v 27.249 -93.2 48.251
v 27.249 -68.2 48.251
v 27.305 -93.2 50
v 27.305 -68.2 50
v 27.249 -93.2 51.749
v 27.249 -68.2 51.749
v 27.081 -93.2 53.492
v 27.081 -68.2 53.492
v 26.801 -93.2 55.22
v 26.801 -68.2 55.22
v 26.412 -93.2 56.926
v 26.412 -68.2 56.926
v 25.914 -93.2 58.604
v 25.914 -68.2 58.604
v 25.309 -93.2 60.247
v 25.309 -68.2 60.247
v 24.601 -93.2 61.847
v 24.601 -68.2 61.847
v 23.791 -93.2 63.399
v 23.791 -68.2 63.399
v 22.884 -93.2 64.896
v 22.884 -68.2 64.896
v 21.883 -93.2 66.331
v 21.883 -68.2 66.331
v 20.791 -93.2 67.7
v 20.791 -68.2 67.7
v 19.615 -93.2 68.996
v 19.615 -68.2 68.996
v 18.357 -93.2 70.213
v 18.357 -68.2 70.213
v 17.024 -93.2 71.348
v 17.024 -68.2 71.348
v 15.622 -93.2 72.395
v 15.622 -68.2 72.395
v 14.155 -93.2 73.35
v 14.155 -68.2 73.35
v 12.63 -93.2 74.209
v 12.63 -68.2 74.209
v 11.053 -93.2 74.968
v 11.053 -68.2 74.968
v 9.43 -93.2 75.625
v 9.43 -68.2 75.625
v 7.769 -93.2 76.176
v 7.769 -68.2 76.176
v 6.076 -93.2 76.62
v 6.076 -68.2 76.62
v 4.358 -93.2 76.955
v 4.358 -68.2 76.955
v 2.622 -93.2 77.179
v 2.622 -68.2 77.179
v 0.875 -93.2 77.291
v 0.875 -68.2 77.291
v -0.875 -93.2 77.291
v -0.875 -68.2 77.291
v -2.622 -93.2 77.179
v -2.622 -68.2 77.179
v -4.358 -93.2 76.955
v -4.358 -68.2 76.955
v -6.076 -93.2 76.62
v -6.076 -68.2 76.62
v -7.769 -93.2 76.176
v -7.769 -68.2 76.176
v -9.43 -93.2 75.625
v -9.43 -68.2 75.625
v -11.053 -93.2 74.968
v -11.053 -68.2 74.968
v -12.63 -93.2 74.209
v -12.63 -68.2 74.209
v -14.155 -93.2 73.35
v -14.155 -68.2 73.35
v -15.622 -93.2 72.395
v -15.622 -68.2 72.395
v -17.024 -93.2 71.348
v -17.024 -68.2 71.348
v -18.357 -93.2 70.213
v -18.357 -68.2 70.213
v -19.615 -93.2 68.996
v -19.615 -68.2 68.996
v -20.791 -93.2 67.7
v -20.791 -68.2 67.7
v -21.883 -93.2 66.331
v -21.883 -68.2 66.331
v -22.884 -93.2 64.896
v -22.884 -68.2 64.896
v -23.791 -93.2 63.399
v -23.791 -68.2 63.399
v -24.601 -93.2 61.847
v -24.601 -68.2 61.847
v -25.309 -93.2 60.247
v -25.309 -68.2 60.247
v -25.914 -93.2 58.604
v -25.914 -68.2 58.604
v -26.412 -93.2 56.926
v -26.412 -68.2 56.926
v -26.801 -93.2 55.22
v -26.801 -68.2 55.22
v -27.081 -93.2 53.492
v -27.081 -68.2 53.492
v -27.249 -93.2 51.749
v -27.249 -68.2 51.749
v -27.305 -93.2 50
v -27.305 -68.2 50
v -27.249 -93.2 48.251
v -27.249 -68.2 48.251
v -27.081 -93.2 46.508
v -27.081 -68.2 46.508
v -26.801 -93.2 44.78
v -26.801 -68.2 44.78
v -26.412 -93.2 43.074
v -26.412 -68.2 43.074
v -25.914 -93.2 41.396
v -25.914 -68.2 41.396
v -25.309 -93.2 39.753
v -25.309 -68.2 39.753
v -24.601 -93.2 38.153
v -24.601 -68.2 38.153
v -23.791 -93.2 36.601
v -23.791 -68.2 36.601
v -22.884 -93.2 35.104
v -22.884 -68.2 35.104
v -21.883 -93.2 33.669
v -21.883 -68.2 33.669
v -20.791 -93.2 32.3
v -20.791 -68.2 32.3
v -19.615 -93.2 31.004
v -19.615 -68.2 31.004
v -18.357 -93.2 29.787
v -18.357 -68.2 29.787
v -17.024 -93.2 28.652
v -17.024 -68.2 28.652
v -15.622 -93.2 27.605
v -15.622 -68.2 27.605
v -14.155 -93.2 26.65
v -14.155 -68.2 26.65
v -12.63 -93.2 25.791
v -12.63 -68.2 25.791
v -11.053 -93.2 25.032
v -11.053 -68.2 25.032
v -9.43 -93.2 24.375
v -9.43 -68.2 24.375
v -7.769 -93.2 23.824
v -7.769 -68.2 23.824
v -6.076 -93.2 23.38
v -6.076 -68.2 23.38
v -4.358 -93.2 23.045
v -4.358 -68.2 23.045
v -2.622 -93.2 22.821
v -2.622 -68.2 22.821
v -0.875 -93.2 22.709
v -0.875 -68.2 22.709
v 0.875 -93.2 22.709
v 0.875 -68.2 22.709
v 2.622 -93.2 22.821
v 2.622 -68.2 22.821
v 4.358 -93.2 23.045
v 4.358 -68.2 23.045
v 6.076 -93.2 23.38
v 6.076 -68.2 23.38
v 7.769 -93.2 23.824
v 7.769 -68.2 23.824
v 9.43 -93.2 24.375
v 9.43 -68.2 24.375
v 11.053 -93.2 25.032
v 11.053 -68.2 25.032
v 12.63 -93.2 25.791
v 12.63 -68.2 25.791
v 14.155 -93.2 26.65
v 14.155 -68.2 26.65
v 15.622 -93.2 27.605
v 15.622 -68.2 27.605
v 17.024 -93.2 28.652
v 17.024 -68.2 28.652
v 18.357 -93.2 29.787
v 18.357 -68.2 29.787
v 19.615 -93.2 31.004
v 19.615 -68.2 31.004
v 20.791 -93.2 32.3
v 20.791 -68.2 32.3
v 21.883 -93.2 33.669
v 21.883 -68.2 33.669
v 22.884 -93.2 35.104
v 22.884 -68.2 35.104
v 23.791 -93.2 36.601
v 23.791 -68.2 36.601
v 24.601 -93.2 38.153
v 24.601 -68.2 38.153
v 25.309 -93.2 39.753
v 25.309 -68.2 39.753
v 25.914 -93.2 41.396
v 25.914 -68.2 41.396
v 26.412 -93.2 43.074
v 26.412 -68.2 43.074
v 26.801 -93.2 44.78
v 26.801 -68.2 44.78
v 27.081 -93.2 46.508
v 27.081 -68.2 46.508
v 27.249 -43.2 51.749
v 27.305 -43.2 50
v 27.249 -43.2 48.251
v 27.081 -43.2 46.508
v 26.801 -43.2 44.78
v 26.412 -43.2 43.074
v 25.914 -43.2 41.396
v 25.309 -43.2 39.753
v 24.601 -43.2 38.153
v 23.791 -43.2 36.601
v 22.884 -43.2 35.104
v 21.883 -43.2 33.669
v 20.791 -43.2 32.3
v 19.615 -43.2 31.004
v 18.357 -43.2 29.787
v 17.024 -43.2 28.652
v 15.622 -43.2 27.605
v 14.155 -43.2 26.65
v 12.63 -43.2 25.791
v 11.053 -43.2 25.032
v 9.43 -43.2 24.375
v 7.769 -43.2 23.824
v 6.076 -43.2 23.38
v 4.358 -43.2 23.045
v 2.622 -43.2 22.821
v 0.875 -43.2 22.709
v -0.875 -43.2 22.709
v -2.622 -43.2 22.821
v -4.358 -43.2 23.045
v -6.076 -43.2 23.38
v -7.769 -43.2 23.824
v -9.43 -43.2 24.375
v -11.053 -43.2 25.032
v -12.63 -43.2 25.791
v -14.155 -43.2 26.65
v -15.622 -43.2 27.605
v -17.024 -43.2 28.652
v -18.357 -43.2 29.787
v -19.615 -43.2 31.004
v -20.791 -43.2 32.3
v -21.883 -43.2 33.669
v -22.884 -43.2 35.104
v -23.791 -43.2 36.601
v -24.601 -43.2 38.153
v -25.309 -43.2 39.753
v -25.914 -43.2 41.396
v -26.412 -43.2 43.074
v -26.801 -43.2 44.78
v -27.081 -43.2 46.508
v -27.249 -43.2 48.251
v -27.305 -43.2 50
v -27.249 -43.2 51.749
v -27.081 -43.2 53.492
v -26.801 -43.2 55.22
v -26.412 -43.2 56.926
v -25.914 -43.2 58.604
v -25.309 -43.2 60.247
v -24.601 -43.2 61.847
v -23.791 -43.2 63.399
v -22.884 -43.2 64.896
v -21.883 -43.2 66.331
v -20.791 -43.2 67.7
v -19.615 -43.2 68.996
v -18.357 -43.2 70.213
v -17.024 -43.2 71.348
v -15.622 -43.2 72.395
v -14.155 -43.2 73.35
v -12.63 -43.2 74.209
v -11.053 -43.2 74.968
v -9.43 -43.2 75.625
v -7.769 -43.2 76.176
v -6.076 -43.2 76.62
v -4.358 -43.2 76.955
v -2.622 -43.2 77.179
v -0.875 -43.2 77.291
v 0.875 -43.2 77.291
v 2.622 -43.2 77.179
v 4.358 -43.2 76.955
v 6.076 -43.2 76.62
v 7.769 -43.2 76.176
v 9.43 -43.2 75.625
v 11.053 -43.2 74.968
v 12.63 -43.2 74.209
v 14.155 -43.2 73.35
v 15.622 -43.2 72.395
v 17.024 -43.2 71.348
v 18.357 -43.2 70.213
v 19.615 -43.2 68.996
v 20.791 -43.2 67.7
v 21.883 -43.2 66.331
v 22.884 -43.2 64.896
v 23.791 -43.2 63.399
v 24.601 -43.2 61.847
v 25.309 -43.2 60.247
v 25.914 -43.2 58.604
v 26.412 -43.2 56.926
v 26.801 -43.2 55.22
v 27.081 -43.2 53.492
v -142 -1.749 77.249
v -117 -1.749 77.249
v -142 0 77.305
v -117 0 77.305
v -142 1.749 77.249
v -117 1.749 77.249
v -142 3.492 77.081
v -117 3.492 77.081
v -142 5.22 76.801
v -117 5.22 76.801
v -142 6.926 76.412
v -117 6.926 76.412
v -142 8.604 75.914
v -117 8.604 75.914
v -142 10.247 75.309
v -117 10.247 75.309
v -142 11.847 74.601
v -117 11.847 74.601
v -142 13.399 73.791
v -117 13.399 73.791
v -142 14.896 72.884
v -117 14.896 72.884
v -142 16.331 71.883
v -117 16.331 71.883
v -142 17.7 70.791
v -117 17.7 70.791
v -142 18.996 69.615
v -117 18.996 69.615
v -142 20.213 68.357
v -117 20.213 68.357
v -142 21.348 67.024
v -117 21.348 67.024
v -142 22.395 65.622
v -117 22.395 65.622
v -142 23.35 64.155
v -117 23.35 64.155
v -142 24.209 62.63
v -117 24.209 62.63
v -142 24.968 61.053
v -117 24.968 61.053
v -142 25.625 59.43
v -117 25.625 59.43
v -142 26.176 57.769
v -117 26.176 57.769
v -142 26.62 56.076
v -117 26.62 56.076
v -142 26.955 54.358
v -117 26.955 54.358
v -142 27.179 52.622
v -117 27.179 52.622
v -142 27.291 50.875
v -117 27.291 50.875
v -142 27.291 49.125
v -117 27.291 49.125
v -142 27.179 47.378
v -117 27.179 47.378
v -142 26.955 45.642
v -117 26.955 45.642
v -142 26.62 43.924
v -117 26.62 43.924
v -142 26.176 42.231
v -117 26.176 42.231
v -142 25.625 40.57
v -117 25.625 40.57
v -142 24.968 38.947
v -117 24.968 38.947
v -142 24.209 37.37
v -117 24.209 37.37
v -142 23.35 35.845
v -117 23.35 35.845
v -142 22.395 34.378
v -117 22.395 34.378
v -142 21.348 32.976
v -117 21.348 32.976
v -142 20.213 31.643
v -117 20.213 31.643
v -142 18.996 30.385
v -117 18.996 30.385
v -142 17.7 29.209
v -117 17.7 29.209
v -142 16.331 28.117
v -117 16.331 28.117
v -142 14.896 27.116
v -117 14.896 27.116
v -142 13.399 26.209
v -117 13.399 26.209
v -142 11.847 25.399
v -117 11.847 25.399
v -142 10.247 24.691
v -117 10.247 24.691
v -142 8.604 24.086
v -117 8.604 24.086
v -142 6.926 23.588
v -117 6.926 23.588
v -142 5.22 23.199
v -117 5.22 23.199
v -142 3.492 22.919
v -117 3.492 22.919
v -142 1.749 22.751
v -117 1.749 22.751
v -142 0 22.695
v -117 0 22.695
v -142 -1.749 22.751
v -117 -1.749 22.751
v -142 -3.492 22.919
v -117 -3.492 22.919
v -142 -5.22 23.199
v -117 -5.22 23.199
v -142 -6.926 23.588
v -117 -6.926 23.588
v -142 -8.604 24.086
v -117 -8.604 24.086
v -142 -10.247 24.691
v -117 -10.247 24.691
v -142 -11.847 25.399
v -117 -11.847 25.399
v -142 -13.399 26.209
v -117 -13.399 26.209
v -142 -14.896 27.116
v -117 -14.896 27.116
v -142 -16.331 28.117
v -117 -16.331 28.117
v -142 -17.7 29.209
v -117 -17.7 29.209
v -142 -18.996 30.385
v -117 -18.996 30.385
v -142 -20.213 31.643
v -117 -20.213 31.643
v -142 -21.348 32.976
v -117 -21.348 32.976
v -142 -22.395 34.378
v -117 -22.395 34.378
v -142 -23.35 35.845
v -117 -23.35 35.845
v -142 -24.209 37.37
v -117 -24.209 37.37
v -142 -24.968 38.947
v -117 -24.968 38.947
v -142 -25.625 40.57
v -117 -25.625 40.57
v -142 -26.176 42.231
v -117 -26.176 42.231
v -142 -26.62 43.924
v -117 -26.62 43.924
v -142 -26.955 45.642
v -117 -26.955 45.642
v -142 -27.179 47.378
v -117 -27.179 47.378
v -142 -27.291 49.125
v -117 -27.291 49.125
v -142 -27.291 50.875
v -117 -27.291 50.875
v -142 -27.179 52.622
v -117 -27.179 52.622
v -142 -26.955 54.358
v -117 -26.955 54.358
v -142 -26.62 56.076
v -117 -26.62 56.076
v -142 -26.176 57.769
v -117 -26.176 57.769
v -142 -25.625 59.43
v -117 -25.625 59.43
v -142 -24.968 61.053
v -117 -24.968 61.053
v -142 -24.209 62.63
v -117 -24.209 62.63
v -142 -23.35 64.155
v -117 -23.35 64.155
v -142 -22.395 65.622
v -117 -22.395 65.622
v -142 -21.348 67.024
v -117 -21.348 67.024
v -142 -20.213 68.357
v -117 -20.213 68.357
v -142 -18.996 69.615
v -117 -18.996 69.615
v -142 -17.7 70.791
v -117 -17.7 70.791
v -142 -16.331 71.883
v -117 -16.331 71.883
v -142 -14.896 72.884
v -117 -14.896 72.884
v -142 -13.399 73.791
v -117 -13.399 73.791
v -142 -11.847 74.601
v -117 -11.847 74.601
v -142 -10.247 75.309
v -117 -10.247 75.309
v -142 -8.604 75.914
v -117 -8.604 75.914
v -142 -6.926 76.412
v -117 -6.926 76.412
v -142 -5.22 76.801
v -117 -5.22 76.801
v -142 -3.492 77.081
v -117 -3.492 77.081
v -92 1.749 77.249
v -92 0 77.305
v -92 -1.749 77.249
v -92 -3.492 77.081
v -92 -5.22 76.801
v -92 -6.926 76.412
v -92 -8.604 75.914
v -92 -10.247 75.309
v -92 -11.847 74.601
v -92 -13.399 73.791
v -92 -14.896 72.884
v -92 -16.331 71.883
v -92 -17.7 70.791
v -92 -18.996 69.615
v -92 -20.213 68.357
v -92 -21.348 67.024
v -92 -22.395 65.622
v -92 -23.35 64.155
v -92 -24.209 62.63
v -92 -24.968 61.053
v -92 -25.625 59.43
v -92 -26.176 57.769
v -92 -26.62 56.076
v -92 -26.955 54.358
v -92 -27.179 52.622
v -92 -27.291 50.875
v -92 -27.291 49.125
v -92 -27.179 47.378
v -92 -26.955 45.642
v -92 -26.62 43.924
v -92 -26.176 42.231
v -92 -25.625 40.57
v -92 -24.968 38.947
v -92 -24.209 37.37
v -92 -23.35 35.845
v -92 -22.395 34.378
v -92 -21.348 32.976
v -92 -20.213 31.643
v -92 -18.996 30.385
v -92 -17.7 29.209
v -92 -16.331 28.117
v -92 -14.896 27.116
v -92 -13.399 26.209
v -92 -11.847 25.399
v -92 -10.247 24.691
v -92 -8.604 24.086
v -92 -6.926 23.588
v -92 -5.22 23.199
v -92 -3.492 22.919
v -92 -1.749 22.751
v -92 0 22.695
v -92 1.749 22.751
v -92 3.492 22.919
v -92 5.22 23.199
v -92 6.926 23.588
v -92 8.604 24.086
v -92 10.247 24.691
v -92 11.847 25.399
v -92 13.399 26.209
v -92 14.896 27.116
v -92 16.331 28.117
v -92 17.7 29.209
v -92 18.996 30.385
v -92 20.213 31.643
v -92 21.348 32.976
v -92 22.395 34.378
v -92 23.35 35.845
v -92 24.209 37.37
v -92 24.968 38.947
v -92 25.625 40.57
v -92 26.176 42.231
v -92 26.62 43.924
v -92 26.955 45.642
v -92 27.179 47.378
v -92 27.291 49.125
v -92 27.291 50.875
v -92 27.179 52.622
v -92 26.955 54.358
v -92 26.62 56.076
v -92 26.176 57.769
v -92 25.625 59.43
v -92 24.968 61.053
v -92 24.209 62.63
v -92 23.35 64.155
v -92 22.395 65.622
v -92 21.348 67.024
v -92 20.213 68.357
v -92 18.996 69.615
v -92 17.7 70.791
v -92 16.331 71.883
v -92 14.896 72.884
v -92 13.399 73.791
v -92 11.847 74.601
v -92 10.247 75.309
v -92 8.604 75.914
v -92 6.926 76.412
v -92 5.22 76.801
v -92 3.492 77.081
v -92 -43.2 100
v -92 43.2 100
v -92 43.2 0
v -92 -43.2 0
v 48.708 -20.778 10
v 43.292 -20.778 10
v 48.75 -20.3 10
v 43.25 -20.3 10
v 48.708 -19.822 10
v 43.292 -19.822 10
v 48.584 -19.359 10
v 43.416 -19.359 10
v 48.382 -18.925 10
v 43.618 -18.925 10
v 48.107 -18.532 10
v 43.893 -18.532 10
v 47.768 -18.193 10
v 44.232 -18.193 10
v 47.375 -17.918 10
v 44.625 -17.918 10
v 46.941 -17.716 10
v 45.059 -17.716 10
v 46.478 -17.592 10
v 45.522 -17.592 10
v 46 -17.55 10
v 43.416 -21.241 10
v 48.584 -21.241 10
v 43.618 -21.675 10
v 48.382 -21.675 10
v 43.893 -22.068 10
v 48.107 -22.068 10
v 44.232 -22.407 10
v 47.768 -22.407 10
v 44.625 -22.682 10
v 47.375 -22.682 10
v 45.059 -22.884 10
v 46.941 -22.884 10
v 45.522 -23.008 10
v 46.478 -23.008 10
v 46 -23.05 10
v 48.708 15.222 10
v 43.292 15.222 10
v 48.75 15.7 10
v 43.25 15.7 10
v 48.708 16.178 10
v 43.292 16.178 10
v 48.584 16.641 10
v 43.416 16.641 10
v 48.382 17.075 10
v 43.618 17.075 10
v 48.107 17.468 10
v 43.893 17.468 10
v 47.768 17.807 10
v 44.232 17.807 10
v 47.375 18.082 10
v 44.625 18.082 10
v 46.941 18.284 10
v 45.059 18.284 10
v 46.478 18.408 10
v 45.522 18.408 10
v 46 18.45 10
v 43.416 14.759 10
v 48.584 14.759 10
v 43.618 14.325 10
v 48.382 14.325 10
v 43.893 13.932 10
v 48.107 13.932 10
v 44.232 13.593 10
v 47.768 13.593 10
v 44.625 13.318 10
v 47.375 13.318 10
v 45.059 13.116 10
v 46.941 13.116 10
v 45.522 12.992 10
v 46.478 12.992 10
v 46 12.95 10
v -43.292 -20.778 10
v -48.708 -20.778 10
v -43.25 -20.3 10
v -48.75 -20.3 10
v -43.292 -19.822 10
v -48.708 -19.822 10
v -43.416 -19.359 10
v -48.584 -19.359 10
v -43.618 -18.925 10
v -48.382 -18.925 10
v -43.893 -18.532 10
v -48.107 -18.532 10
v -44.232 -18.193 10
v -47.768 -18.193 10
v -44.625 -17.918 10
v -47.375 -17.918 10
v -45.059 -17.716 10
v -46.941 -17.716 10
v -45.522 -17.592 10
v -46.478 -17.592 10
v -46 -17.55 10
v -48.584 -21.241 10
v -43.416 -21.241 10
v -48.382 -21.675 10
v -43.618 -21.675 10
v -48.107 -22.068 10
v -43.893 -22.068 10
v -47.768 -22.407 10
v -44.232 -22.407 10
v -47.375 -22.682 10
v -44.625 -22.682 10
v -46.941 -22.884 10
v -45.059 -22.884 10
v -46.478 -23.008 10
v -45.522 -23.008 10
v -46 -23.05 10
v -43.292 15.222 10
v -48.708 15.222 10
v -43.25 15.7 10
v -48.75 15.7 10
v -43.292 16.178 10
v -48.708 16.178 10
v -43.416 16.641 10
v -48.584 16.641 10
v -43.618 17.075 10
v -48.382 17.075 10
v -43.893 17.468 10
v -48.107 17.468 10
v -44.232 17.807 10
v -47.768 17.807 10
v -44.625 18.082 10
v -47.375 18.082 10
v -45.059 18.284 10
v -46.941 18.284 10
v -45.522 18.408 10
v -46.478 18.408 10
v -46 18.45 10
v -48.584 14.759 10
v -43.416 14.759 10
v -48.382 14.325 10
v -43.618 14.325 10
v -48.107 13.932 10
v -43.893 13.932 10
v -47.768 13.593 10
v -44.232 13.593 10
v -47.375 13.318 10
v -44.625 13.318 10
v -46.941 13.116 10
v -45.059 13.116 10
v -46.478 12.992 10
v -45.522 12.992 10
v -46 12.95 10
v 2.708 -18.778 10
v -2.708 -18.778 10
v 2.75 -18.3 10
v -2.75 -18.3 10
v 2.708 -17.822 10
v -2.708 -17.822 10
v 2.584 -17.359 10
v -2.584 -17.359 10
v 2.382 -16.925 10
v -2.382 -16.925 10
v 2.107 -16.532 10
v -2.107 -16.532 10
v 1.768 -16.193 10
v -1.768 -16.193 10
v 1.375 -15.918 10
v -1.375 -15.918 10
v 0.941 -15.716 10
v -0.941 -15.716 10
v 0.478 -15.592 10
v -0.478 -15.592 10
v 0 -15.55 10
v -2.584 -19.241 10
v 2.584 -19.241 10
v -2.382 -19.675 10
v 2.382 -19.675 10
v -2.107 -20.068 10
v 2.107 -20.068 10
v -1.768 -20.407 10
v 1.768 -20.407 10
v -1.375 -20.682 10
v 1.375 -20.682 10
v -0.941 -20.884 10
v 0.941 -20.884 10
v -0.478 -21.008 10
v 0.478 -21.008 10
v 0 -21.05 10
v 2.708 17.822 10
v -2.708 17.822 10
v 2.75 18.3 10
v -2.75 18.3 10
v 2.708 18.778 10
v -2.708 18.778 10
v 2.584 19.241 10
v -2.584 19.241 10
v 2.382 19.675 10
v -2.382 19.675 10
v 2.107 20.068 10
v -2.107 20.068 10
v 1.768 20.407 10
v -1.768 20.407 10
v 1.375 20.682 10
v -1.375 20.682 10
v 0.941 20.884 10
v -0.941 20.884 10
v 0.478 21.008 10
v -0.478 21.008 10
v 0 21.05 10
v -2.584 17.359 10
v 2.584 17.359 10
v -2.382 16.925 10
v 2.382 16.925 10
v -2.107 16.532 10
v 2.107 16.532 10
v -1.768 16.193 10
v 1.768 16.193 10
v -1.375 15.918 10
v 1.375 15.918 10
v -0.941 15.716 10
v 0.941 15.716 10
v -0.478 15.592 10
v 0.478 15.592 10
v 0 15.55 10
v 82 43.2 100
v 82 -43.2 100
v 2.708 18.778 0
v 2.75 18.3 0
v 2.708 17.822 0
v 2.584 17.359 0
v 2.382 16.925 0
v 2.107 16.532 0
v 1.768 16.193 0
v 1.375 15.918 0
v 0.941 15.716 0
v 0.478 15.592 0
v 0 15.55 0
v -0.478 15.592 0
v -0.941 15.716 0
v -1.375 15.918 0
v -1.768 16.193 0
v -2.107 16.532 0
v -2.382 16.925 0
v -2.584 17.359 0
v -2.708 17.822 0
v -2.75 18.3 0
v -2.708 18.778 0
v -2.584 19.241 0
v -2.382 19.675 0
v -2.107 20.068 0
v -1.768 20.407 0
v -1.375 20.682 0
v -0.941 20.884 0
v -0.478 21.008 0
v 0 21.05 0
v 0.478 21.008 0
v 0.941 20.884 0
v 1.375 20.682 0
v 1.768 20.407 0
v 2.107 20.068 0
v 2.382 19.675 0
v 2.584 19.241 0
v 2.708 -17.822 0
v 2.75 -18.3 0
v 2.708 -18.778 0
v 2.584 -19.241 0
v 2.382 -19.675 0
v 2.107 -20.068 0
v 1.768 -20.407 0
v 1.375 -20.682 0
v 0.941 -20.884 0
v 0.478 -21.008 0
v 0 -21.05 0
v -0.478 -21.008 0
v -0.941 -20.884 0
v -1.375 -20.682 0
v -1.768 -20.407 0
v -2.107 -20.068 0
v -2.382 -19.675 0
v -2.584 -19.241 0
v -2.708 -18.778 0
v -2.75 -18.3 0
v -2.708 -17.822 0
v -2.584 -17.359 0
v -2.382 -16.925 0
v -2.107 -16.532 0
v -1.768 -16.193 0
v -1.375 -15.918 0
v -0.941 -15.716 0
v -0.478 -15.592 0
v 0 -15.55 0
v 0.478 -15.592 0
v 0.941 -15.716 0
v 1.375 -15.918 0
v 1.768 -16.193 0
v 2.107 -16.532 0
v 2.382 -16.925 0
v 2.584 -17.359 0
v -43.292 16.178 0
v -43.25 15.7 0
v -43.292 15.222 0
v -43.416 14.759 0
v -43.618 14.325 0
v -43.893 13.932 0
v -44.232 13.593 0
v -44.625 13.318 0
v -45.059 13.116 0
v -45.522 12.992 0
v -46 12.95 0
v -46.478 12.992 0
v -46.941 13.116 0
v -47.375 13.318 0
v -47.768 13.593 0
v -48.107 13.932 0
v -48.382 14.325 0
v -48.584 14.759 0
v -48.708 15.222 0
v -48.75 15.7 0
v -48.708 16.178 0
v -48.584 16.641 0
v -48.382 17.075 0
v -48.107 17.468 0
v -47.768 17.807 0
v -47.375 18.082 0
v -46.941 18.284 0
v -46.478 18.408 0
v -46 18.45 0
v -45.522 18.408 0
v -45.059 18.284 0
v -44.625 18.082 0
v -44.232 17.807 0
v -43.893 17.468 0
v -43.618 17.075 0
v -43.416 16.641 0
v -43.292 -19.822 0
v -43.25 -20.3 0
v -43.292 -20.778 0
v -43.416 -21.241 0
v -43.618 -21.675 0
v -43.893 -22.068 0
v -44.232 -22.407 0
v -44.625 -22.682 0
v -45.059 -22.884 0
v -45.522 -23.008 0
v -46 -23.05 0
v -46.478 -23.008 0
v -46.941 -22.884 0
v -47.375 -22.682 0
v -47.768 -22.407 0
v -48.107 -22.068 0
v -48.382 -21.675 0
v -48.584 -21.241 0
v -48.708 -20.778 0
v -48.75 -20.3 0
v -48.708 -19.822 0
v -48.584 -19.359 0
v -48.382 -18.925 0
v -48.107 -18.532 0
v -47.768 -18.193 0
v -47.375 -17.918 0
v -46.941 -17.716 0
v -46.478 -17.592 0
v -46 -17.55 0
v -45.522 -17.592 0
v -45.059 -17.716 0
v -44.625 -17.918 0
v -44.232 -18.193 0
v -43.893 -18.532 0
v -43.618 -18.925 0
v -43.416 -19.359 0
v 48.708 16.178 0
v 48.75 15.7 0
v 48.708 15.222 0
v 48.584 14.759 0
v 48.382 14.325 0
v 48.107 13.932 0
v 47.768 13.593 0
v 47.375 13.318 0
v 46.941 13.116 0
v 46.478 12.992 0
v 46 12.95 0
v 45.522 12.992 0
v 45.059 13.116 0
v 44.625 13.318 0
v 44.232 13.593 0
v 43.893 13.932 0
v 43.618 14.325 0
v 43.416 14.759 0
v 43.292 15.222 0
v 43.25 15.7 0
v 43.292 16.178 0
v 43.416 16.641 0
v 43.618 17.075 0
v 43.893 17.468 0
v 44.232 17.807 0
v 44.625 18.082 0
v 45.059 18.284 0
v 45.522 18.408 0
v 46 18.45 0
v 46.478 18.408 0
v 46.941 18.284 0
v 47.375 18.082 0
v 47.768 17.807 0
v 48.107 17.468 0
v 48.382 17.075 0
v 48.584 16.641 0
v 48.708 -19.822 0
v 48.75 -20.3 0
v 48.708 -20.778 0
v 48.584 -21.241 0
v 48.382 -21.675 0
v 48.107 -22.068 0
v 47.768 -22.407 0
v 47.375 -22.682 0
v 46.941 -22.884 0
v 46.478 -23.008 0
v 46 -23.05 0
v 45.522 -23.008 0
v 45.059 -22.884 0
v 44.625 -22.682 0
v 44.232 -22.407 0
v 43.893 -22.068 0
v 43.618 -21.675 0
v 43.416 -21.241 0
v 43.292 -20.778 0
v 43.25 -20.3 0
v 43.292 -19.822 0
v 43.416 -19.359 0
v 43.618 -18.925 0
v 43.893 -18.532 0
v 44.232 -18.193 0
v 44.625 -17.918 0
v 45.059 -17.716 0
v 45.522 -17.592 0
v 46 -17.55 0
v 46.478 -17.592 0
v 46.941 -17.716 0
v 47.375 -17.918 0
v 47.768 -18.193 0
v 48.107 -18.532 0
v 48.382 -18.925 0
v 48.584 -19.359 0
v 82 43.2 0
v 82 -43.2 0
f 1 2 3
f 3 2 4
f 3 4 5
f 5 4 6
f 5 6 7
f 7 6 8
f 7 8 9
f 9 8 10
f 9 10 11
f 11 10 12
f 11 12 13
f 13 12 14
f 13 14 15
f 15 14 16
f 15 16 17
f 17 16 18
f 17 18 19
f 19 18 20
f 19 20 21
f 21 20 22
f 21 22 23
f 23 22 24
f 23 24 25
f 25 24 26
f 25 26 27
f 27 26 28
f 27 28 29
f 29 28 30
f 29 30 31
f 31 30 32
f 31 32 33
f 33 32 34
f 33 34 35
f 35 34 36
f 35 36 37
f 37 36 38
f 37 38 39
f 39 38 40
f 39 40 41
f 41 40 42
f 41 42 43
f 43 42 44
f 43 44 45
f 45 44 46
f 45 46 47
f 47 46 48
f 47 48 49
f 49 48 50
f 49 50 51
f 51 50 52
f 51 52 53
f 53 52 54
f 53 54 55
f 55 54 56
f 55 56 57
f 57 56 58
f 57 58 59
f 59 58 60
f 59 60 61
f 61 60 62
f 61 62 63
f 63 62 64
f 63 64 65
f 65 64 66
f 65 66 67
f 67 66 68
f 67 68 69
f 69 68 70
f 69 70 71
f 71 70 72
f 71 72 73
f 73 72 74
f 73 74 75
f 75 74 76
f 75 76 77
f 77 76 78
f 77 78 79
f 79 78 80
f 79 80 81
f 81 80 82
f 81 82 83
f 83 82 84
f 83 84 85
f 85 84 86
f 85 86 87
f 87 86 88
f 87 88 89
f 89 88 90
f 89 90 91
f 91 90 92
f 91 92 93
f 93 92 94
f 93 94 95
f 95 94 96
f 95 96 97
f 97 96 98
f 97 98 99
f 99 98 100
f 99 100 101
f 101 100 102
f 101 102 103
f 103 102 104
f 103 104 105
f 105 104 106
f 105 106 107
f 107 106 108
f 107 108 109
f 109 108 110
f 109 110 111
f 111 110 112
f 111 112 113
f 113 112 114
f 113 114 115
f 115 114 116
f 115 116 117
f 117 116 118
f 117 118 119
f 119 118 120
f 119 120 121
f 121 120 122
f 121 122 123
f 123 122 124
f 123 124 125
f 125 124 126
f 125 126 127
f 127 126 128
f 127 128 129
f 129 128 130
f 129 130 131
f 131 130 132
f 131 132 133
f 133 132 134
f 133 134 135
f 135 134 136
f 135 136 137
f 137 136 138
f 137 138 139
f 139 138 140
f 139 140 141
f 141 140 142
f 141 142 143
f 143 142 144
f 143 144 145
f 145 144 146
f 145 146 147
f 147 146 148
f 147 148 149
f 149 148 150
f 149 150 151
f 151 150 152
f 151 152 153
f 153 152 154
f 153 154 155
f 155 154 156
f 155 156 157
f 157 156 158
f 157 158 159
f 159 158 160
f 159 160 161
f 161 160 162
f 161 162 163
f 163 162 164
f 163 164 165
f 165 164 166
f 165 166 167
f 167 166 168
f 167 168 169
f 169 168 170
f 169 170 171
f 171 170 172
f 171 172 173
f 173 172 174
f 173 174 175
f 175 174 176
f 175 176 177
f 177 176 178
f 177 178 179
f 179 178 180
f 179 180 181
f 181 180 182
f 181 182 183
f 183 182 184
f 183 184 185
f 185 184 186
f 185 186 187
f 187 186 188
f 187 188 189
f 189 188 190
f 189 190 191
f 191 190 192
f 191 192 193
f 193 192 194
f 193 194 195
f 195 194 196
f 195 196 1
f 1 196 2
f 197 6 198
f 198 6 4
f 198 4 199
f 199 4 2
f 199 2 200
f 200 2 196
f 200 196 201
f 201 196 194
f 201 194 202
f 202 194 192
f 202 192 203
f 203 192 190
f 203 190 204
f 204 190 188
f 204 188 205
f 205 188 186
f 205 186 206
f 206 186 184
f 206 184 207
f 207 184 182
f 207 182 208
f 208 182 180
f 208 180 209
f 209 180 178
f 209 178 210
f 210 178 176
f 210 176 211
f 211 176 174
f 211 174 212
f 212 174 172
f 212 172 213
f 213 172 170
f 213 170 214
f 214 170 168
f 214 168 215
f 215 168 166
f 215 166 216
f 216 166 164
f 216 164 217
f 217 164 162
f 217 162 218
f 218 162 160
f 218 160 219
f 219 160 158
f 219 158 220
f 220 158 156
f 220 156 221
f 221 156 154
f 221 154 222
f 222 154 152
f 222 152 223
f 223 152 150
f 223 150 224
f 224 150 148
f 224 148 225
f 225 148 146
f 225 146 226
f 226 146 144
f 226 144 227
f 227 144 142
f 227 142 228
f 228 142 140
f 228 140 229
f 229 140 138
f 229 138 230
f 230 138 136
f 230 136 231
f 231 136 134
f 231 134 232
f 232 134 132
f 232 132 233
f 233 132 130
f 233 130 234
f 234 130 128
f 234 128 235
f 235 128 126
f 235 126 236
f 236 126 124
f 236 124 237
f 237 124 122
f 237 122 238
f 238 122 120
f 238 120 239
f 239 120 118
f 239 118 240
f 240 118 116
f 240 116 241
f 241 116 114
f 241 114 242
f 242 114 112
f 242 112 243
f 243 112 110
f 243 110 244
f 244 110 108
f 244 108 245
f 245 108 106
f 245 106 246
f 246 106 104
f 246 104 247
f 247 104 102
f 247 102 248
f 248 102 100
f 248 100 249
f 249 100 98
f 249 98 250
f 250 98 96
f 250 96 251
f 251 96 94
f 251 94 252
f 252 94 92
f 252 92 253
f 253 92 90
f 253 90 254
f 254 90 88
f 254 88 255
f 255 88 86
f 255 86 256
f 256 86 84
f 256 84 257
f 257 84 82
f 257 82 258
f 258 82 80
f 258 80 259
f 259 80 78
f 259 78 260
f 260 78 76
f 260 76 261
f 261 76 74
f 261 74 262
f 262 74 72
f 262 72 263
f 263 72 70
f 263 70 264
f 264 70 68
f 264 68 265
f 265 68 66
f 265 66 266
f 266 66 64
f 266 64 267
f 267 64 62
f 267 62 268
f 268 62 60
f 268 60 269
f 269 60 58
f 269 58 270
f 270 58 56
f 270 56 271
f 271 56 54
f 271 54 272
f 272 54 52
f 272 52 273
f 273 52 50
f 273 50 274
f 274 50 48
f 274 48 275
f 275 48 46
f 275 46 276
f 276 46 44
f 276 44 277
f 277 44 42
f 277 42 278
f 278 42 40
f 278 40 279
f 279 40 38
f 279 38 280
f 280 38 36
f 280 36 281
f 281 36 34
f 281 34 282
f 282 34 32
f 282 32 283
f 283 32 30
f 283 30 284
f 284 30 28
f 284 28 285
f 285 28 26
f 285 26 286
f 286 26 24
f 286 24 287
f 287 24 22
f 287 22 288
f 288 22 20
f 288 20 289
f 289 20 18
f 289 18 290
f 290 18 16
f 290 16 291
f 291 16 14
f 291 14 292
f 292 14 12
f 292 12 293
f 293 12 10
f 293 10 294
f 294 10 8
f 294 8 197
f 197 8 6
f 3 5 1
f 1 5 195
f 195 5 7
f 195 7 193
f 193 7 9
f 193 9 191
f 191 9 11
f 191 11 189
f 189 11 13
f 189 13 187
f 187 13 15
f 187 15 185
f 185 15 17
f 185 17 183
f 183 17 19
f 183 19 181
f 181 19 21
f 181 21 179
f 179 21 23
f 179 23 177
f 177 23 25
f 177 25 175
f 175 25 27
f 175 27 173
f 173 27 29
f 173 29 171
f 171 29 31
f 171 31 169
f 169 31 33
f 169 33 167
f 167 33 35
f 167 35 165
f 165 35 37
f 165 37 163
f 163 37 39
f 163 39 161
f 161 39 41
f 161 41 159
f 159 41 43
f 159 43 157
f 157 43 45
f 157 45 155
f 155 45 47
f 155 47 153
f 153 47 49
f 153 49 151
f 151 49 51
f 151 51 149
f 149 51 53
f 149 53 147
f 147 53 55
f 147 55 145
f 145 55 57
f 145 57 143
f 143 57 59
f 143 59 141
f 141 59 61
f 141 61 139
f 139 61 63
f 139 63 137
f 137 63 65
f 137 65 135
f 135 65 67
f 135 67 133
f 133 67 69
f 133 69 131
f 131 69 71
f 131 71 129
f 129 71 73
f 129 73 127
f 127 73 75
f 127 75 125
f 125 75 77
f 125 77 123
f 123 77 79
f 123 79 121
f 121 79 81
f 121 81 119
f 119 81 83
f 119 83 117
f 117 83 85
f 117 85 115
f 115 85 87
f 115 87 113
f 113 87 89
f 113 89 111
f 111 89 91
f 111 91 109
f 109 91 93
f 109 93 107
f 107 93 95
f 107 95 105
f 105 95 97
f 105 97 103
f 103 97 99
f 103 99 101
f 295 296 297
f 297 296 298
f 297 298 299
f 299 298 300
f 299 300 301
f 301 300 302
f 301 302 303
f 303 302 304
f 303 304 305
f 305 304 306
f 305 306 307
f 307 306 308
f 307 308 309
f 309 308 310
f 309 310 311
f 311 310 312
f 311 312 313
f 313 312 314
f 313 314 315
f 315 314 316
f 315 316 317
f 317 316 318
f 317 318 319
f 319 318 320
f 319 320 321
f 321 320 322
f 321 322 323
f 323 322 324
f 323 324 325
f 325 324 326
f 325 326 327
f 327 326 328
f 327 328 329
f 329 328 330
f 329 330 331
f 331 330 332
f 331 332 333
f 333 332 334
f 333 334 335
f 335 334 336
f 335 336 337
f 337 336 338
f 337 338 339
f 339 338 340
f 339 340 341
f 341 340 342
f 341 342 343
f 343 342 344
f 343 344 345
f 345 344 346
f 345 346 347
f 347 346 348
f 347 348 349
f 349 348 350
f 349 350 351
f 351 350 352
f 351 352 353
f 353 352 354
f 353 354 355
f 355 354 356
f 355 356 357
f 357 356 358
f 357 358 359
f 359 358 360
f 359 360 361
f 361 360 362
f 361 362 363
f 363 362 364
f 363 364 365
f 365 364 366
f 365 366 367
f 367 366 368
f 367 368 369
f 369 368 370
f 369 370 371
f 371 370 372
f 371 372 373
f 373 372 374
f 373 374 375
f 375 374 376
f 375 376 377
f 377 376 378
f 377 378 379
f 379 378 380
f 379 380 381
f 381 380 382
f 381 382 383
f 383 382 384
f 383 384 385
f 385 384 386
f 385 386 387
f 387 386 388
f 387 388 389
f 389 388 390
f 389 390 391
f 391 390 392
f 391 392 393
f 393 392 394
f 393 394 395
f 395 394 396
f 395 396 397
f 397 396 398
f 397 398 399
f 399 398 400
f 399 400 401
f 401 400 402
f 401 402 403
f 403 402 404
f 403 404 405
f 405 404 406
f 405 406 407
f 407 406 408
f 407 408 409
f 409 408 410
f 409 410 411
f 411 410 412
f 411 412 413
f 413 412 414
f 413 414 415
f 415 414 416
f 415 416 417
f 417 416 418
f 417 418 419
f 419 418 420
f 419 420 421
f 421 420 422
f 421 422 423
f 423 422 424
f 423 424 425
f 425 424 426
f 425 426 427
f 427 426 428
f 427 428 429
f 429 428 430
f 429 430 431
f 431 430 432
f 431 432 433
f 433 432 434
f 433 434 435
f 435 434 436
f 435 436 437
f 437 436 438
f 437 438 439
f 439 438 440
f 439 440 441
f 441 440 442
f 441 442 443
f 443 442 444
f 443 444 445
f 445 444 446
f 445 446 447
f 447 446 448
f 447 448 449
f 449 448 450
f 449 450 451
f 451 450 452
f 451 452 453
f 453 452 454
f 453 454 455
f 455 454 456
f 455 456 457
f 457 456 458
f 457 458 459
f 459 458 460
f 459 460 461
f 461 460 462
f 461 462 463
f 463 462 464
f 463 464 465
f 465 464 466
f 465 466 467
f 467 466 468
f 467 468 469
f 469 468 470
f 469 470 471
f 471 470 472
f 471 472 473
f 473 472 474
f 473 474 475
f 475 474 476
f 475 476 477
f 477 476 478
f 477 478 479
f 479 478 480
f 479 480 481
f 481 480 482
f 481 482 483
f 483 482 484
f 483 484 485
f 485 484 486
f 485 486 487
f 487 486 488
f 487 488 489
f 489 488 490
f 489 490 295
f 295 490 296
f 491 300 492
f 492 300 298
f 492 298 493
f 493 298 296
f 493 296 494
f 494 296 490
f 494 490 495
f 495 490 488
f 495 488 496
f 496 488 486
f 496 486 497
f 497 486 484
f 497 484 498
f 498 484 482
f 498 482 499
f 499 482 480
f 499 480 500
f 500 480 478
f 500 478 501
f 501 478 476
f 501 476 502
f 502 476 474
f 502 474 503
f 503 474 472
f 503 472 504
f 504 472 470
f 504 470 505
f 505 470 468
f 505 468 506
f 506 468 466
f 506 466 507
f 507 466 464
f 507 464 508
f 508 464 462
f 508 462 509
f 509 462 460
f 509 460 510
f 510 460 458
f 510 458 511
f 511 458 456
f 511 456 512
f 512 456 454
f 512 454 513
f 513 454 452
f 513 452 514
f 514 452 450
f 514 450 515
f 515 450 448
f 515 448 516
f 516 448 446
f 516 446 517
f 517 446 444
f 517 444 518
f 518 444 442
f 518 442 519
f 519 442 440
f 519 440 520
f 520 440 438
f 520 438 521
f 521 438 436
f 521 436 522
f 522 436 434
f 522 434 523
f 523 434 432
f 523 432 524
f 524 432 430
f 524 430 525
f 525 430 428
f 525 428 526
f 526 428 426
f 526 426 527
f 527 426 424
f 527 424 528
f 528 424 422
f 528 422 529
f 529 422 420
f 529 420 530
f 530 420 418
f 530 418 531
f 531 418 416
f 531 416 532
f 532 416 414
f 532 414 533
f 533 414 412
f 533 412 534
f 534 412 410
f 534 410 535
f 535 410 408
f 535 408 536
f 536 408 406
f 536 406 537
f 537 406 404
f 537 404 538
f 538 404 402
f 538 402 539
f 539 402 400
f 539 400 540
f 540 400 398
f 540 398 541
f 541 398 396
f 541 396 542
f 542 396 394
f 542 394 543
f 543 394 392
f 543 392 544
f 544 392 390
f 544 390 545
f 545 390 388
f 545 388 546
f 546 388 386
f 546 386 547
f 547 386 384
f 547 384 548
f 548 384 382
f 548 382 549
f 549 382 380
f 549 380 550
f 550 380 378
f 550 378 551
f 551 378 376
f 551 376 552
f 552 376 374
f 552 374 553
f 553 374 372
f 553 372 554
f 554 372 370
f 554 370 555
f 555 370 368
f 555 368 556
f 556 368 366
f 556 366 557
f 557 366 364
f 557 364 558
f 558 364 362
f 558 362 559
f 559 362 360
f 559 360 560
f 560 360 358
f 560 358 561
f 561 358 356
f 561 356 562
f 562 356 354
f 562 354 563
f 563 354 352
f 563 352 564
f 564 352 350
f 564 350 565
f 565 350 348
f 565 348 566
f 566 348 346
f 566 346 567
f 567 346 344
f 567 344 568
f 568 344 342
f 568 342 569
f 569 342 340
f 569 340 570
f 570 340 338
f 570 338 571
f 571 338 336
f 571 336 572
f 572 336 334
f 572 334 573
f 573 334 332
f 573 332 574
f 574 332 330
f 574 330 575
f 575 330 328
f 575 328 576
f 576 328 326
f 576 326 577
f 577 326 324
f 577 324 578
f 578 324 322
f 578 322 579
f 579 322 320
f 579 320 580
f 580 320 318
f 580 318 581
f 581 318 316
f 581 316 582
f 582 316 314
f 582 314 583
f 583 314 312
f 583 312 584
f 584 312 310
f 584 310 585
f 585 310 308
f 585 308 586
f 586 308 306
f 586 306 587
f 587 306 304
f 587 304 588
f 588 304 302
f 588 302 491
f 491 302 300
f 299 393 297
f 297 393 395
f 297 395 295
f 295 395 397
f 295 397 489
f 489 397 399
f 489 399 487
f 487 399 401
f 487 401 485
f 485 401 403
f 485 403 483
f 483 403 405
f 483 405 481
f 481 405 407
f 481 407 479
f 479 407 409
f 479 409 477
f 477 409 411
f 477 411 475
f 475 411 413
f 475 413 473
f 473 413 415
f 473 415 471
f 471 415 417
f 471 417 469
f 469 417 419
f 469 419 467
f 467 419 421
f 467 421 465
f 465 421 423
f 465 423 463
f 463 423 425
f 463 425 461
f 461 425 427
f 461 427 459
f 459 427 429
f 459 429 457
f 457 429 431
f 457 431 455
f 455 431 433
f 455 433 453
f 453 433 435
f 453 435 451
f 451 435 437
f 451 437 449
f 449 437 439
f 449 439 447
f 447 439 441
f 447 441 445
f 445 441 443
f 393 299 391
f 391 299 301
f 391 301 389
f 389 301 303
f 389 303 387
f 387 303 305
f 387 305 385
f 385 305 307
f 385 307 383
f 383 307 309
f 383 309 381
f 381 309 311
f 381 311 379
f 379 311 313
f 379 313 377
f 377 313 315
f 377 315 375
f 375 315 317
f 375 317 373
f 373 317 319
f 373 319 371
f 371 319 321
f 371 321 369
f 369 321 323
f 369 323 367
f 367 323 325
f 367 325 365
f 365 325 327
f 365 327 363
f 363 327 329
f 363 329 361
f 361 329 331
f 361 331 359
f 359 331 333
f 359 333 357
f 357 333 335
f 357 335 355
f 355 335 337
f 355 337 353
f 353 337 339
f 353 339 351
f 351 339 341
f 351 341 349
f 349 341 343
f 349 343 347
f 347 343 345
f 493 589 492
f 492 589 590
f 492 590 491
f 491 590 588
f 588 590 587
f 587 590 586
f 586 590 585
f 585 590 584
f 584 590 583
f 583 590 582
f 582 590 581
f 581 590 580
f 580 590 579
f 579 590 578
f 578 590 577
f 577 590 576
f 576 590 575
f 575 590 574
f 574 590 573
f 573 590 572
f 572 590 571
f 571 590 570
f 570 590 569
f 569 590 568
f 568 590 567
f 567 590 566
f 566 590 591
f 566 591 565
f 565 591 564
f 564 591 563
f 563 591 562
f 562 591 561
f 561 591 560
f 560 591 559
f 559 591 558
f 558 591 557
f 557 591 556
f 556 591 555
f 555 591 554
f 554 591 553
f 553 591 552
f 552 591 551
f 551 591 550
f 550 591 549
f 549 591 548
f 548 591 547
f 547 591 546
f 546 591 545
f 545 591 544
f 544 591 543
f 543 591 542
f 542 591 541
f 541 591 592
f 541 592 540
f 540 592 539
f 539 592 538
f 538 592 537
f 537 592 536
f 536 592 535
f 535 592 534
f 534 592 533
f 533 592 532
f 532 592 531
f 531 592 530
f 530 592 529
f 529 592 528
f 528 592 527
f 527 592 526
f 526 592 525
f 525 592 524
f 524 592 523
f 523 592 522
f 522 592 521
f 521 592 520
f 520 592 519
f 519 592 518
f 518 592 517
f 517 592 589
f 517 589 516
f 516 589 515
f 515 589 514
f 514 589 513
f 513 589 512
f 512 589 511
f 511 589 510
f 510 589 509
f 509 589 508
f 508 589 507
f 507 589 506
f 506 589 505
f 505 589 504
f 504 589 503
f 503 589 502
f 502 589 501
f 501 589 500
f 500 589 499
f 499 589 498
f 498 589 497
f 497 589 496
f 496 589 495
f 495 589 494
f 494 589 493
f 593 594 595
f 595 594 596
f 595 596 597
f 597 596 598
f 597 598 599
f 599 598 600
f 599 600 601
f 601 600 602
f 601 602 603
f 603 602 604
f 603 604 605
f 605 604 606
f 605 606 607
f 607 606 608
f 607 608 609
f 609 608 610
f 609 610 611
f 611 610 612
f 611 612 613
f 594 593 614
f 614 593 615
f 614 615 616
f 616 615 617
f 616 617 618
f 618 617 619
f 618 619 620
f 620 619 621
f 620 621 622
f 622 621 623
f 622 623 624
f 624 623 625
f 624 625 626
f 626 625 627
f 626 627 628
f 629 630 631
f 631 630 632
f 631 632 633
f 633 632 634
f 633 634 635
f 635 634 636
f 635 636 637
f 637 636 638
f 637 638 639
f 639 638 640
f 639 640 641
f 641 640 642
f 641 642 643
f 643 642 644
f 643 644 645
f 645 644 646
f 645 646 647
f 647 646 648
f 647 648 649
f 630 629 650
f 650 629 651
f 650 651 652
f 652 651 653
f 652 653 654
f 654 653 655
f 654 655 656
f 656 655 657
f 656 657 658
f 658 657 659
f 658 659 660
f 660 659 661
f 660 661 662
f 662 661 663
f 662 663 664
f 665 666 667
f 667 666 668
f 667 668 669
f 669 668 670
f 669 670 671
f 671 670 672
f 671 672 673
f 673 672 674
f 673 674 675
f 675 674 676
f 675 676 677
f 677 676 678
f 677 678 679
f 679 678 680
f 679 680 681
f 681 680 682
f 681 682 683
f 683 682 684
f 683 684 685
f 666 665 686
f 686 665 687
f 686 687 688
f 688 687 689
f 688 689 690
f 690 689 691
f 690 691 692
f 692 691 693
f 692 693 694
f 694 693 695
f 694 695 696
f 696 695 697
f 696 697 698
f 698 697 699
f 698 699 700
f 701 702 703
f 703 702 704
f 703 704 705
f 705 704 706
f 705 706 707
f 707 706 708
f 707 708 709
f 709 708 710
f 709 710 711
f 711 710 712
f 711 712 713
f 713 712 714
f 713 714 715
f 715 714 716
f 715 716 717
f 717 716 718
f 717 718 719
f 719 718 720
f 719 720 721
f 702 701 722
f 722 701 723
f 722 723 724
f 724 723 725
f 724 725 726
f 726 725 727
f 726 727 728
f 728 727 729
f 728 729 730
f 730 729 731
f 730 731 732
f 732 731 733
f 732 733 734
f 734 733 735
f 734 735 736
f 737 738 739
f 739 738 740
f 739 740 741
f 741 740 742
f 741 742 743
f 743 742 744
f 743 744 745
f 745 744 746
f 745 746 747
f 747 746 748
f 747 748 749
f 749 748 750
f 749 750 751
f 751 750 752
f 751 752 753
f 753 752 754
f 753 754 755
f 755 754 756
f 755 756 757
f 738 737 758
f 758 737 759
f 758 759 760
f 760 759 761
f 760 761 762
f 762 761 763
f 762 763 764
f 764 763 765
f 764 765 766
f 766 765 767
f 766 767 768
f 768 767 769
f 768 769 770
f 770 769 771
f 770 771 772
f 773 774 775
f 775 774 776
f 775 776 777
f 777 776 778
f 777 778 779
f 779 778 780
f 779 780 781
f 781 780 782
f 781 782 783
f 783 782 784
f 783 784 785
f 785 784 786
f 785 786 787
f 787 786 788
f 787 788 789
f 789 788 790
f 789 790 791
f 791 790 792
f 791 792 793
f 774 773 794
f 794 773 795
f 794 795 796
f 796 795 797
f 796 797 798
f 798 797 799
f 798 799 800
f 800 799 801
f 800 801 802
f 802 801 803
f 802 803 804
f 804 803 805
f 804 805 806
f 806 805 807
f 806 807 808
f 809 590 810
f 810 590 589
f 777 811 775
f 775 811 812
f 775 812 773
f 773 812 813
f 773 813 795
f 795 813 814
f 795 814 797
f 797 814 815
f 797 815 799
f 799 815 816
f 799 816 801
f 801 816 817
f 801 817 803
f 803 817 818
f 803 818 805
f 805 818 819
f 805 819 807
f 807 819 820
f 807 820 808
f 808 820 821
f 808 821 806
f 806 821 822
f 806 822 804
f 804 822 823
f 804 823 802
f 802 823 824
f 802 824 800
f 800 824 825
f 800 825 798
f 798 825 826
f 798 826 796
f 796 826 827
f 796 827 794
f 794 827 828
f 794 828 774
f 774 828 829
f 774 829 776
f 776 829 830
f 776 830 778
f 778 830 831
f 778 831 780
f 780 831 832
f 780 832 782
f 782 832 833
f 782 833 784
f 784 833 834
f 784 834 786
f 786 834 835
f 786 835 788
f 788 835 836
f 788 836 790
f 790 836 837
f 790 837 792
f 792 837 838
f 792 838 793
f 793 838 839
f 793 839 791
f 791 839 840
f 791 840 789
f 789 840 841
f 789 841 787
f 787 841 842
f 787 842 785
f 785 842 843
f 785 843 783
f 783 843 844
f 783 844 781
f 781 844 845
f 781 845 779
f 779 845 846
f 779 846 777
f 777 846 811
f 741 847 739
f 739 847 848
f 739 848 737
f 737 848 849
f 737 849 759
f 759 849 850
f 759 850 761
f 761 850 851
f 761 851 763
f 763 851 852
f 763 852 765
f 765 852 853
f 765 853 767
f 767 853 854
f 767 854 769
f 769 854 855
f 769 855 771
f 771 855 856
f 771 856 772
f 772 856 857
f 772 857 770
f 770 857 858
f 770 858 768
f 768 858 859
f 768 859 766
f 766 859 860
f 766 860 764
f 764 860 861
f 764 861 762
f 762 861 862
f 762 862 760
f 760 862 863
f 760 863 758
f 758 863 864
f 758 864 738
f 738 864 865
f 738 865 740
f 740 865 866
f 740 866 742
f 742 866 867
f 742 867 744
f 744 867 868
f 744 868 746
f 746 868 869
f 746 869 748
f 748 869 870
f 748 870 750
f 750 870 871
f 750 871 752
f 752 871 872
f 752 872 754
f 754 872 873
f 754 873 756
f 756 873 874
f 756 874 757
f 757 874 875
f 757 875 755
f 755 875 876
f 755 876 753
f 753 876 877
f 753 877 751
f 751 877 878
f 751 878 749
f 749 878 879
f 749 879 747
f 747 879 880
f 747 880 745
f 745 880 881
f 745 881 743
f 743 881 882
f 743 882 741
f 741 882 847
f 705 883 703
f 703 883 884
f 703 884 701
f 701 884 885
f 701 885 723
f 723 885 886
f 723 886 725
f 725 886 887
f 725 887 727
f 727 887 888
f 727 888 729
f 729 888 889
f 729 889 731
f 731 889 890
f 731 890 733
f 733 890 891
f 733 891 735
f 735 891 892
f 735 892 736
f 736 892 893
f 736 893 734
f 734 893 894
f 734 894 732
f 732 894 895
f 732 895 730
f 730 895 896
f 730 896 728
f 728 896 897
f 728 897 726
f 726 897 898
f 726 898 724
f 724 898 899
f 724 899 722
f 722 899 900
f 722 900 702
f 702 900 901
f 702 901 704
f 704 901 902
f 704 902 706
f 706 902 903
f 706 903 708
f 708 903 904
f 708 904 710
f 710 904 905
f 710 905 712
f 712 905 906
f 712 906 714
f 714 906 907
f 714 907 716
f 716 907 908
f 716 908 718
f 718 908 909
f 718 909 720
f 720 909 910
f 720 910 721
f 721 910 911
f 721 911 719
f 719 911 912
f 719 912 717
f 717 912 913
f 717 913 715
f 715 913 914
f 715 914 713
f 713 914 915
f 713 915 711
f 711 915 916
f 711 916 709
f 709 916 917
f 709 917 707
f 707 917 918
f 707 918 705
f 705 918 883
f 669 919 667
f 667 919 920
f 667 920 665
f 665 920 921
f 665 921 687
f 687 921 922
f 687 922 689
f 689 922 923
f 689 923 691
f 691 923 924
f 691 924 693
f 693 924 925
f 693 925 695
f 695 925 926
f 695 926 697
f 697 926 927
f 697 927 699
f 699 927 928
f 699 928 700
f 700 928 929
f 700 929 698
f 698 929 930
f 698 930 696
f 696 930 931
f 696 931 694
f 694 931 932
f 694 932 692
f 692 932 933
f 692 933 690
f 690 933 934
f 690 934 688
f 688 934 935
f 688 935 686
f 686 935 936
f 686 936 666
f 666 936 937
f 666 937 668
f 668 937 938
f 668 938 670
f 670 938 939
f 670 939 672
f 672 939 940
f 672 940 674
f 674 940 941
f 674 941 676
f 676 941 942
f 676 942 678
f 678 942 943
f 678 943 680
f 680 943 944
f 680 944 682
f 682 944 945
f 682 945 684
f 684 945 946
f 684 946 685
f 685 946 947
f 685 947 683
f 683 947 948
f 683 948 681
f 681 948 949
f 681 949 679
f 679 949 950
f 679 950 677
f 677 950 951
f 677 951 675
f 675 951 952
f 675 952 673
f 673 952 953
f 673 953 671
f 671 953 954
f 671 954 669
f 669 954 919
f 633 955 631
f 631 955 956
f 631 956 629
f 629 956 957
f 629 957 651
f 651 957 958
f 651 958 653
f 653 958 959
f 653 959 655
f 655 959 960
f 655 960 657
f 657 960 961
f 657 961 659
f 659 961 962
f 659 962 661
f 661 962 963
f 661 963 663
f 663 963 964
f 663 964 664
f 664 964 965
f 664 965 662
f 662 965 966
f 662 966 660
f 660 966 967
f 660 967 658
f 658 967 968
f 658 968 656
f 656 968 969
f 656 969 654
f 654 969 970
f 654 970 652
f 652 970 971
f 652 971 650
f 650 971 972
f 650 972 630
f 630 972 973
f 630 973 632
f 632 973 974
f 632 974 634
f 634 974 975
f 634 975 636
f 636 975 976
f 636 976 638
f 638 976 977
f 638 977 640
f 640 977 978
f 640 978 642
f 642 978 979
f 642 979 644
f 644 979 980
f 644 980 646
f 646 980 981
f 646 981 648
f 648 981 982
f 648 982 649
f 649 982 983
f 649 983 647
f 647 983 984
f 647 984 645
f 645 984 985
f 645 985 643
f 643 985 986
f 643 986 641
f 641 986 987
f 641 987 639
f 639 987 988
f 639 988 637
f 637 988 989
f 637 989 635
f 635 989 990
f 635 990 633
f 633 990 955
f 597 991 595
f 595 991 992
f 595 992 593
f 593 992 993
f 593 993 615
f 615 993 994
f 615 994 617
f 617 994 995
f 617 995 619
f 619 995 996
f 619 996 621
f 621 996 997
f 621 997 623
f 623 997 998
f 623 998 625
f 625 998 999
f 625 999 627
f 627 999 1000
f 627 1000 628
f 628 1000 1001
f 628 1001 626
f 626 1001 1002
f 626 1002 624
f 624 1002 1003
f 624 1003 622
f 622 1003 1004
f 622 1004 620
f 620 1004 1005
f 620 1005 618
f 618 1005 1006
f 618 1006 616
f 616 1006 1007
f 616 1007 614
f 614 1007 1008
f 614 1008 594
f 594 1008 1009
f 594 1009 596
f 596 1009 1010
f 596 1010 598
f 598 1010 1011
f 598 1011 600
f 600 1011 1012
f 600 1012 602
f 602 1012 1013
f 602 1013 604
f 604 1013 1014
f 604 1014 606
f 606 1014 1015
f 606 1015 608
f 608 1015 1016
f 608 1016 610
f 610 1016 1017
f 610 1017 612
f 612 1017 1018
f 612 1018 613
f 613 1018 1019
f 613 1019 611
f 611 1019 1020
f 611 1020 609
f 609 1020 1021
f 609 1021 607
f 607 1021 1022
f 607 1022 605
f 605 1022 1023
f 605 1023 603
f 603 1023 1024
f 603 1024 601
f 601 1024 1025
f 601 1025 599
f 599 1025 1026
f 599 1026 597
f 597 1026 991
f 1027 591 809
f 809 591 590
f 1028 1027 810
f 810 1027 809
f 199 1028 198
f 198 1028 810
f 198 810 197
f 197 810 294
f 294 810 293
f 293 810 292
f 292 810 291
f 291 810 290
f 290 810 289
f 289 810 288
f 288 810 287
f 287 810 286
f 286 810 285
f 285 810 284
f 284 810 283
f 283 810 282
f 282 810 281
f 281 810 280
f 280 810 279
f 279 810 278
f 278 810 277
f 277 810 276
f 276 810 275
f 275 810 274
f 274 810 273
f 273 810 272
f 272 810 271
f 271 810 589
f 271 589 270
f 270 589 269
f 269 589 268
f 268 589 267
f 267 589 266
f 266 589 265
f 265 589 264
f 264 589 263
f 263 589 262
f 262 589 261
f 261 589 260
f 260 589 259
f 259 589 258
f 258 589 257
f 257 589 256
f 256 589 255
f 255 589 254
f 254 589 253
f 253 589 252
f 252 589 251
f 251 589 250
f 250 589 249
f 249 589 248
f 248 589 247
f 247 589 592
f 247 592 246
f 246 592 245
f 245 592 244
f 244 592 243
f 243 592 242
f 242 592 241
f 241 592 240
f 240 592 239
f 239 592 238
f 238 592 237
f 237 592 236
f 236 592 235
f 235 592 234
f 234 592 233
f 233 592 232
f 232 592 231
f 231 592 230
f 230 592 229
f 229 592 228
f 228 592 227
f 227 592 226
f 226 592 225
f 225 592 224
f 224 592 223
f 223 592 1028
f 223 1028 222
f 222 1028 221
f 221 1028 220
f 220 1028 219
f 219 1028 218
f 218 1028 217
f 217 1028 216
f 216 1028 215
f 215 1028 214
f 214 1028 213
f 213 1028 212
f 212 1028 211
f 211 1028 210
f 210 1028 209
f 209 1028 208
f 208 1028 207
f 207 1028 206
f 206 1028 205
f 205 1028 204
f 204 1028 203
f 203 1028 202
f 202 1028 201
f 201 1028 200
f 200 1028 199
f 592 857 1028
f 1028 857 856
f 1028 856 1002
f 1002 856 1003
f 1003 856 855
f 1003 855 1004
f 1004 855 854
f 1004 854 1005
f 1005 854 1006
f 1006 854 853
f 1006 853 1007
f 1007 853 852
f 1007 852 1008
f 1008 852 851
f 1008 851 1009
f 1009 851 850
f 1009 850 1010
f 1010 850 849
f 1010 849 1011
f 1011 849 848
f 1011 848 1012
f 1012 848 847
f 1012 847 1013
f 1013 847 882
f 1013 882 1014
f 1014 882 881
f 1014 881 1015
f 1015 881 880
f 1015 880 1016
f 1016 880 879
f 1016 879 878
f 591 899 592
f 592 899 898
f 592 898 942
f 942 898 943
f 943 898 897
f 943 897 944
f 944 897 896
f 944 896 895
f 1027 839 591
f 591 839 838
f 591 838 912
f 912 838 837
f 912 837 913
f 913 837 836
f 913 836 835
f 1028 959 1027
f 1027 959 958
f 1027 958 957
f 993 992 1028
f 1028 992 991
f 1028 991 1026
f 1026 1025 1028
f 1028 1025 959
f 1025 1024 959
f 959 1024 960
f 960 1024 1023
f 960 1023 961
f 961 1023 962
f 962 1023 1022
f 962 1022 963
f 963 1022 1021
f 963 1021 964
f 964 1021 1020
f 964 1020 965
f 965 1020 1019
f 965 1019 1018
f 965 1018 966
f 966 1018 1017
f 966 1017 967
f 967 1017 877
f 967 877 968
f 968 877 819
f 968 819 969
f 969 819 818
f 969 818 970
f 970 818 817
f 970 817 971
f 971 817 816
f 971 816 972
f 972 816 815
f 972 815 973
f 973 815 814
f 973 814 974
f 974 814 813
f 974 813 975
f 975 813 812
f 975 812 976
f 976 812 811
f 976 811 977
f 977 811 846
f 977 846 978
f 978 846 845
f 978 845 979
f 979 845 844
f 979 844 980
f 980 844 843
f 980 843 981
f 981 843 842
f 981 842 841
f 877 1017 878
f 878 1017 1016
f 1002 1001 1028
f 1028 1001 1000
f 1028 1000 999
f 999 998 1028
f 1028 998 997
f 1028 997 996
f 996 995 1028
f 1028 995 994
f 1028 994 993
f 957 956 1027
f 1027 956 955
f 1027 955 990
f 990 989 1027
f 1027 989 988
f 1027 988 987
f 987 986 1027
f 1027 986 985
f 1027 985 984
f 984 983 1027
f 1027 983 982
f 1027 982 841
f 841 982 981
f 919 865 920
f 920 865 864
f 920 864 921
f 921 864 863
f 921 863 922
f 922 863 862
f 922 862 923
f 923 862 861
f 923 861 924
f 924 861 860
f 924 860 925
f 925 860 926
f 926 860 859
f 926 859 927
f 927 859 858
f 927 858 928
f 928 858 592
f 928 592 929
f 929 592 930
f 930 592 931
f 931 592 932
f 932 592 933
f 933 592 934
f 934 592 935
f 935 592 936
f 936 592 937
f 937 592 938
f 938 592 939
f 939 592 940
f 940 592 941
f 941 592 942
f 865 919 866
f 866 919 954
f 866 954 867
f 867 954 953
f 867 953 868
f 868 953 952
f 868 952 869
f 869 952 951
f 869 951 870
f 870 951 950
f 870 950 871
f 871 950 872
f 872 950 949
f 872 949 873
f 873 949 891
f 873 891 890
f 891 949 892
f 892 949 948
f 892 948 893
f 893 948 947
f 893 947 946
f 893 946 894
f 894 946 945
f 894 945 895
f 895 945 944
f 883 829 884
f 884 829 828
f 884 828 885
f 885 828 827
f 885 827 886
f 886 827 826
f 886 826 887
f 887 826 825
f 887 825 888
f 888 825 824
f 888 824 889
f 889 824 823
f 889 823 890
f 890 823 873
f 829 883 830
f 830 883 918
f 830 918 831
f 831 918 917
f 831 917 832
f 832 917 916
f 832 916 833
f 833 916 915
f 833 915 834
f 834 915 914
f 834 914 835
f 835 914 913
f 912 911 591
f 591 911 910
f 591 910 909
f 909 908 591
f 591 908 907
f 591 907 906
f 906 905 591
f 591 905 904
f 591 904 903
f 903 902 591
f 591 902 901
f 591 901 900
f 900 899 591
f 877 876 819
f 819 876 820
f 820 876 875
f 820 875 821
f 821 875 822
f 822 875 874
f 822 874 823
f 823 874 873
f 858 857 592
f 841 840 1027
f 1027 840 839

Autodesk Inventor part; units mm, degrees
ref_plane "YZ Plane" through (0, 0, 0) normal (1, 0, 0) x (0, 1, 0)
ref_plane "XZ Plane" through (0, 0, 0) normal (0, 1, 0) x (-1, 0, 0)
ref_plane "XY Plane" through (0, 0, 0) normal (0, 0, 1) x (1, 0, 0)
sketch "Sketch1" plane through (0, 0, 0) normal (0, 0, 1) x (1, 0, 0)
  line L0 (-13.5, 24) -> (13.5, 24) construction
  line L1 (13.5, 24) -> (13.5, -24) construction
  line L2 (13.5, -24) -> (-13.5, -24) construction
  line L3 (-13.5, -24) -> (-13.5, 24) construction
  line L4 (-13.5, 0) -> (13.5, 0) construction
  line L5 (0, -24) -> (0, 24) construction
  circle A0 centre (0, 18.3) radius 2.75
  circle A1 centre (0, -18.3) radius 2.75
  line L6 (-60, 21.2) -> (-32, 21.2) construction
  line L7 (-32, 21.2) -> (-32, -25.8) construction
  line L8 (-32, -25.8) -> (-60, -25.8) construction
  line L9 (-60, -25.8) -> (-60, 21.2) construction
  line L10 (-46, 21.2) -> (-46, -25.8) construction
  line L11 (-60, -2.3) -> (-32, -2.3) construction
  circle A2 centre (-46, 15.7) radius 2.75
  circle A3 centre (-46, -20.3) radius 2.75
  circle A4 centre (46, 15.7) radius 2.75
  circle A5 centre (46, -20.3) radius 2.75
  line L12 (-82, 43.2) -> (82, 43.2)
  line L13 (82, 43.2) -> (82, -43.2)
  line L14 (82, -43.2) -> (-82, -43.2)
  line L15 (-82, -43.2) -> (-82, 43.2)
  point P0 (0, 0)
  point P1 (0, 0)
  dimension "d0" = 27
  dimension "d1" = 48
  dimension "d2" = 5.5
  dimension "d3" = 36.6
  dimension "d4" = 28
  dimension "d5" = 47
  dimension "d7" = 2.3
  dimension "d8" = 46
  dimension "d9" = 5.5
  dimension "d10" = 36
  dimension "d11" = 22
  dimension "d19" = 43.2
extrude "Extrusion1" add sketch "Sketch1" along normal blind 10
sketch "Sketch3" plane through (0, 0, 10) normal (0, 0, 1) x (1, 0, 0)
  line L0 (-82, 43.2) -> (-82, -43.2) projected
  line L1 (-82, -43.2) -> (82, -43.2) projected
  line L2 (-82, 43.2) -> (82, 43.2)
  line L3 (82, 43.2) -> (82, -43.2)
  line L4 (82, -43.2) -> (-82, -43.2)
  line L5 (-82, -43.2) -> (-82, 43.2)
  point P0 (0, 0)
extrude "Extrusion3" add sketch "Sketch3" along normal blind 90
sketch "Sketch4" plane through (-82, -43.2, 0) normal (-1, 0, 0) x (0, 0, 1)
  line L0 (0, 86.4) -> (0, 0) projected
  line L1 (0, 0) -> (100, 0) projected
  line L2 (100, 86.4) -> (100, 0) projected
  line L3 (0, 86.4) -> (100, 86.4) projected
  point P0 (0, 43.2)
extrude "Extrusion4" add sketch "Sketch4" along normal blind 10
sketch "Sketch5" plane through (-92, -43.2, 0) normal (-1, 0, 0) x (0, 0, 1)
  line L0 (0, 43.2) -> (100, 43.2) construction
  line L1 (100, 0) -> (100, 86.4) construction
  line L2 (0, 86.4) -> (100, 86.4) construction
  line L3 (50, 86.4) -> (50, 0) construction
  line L4 (0, 0) -> (100, 0) construction
  circle A0 centre (50, 43.2) radius 27.305
  dimension "d22" = 54.61
extrude "Extrusion5" add sketch "Sketch5" along normal blind 50
sketch "Sketch6" plane through (82, -43.2, 0) normal (0, -1, 0) x (1, 0, 0)
  line L0 (0, 0) -> (0, 100) construction
  line L1 (0, 50) -> (-174, 50) construction
  line L2 (-174, 100) -> (-174, 0) construction
  line L3 (-82, 0) -> (-82, 100) construction
  line L4 (0, 100) -> (-174, 100) construction
  circle A0 centre (-82, 50) radius 27.305
  dimension "d25" = 54.61
extrude "Extrusion6" add sketch "Sketch6" along normal blind 50
properties part number "aux_L"
